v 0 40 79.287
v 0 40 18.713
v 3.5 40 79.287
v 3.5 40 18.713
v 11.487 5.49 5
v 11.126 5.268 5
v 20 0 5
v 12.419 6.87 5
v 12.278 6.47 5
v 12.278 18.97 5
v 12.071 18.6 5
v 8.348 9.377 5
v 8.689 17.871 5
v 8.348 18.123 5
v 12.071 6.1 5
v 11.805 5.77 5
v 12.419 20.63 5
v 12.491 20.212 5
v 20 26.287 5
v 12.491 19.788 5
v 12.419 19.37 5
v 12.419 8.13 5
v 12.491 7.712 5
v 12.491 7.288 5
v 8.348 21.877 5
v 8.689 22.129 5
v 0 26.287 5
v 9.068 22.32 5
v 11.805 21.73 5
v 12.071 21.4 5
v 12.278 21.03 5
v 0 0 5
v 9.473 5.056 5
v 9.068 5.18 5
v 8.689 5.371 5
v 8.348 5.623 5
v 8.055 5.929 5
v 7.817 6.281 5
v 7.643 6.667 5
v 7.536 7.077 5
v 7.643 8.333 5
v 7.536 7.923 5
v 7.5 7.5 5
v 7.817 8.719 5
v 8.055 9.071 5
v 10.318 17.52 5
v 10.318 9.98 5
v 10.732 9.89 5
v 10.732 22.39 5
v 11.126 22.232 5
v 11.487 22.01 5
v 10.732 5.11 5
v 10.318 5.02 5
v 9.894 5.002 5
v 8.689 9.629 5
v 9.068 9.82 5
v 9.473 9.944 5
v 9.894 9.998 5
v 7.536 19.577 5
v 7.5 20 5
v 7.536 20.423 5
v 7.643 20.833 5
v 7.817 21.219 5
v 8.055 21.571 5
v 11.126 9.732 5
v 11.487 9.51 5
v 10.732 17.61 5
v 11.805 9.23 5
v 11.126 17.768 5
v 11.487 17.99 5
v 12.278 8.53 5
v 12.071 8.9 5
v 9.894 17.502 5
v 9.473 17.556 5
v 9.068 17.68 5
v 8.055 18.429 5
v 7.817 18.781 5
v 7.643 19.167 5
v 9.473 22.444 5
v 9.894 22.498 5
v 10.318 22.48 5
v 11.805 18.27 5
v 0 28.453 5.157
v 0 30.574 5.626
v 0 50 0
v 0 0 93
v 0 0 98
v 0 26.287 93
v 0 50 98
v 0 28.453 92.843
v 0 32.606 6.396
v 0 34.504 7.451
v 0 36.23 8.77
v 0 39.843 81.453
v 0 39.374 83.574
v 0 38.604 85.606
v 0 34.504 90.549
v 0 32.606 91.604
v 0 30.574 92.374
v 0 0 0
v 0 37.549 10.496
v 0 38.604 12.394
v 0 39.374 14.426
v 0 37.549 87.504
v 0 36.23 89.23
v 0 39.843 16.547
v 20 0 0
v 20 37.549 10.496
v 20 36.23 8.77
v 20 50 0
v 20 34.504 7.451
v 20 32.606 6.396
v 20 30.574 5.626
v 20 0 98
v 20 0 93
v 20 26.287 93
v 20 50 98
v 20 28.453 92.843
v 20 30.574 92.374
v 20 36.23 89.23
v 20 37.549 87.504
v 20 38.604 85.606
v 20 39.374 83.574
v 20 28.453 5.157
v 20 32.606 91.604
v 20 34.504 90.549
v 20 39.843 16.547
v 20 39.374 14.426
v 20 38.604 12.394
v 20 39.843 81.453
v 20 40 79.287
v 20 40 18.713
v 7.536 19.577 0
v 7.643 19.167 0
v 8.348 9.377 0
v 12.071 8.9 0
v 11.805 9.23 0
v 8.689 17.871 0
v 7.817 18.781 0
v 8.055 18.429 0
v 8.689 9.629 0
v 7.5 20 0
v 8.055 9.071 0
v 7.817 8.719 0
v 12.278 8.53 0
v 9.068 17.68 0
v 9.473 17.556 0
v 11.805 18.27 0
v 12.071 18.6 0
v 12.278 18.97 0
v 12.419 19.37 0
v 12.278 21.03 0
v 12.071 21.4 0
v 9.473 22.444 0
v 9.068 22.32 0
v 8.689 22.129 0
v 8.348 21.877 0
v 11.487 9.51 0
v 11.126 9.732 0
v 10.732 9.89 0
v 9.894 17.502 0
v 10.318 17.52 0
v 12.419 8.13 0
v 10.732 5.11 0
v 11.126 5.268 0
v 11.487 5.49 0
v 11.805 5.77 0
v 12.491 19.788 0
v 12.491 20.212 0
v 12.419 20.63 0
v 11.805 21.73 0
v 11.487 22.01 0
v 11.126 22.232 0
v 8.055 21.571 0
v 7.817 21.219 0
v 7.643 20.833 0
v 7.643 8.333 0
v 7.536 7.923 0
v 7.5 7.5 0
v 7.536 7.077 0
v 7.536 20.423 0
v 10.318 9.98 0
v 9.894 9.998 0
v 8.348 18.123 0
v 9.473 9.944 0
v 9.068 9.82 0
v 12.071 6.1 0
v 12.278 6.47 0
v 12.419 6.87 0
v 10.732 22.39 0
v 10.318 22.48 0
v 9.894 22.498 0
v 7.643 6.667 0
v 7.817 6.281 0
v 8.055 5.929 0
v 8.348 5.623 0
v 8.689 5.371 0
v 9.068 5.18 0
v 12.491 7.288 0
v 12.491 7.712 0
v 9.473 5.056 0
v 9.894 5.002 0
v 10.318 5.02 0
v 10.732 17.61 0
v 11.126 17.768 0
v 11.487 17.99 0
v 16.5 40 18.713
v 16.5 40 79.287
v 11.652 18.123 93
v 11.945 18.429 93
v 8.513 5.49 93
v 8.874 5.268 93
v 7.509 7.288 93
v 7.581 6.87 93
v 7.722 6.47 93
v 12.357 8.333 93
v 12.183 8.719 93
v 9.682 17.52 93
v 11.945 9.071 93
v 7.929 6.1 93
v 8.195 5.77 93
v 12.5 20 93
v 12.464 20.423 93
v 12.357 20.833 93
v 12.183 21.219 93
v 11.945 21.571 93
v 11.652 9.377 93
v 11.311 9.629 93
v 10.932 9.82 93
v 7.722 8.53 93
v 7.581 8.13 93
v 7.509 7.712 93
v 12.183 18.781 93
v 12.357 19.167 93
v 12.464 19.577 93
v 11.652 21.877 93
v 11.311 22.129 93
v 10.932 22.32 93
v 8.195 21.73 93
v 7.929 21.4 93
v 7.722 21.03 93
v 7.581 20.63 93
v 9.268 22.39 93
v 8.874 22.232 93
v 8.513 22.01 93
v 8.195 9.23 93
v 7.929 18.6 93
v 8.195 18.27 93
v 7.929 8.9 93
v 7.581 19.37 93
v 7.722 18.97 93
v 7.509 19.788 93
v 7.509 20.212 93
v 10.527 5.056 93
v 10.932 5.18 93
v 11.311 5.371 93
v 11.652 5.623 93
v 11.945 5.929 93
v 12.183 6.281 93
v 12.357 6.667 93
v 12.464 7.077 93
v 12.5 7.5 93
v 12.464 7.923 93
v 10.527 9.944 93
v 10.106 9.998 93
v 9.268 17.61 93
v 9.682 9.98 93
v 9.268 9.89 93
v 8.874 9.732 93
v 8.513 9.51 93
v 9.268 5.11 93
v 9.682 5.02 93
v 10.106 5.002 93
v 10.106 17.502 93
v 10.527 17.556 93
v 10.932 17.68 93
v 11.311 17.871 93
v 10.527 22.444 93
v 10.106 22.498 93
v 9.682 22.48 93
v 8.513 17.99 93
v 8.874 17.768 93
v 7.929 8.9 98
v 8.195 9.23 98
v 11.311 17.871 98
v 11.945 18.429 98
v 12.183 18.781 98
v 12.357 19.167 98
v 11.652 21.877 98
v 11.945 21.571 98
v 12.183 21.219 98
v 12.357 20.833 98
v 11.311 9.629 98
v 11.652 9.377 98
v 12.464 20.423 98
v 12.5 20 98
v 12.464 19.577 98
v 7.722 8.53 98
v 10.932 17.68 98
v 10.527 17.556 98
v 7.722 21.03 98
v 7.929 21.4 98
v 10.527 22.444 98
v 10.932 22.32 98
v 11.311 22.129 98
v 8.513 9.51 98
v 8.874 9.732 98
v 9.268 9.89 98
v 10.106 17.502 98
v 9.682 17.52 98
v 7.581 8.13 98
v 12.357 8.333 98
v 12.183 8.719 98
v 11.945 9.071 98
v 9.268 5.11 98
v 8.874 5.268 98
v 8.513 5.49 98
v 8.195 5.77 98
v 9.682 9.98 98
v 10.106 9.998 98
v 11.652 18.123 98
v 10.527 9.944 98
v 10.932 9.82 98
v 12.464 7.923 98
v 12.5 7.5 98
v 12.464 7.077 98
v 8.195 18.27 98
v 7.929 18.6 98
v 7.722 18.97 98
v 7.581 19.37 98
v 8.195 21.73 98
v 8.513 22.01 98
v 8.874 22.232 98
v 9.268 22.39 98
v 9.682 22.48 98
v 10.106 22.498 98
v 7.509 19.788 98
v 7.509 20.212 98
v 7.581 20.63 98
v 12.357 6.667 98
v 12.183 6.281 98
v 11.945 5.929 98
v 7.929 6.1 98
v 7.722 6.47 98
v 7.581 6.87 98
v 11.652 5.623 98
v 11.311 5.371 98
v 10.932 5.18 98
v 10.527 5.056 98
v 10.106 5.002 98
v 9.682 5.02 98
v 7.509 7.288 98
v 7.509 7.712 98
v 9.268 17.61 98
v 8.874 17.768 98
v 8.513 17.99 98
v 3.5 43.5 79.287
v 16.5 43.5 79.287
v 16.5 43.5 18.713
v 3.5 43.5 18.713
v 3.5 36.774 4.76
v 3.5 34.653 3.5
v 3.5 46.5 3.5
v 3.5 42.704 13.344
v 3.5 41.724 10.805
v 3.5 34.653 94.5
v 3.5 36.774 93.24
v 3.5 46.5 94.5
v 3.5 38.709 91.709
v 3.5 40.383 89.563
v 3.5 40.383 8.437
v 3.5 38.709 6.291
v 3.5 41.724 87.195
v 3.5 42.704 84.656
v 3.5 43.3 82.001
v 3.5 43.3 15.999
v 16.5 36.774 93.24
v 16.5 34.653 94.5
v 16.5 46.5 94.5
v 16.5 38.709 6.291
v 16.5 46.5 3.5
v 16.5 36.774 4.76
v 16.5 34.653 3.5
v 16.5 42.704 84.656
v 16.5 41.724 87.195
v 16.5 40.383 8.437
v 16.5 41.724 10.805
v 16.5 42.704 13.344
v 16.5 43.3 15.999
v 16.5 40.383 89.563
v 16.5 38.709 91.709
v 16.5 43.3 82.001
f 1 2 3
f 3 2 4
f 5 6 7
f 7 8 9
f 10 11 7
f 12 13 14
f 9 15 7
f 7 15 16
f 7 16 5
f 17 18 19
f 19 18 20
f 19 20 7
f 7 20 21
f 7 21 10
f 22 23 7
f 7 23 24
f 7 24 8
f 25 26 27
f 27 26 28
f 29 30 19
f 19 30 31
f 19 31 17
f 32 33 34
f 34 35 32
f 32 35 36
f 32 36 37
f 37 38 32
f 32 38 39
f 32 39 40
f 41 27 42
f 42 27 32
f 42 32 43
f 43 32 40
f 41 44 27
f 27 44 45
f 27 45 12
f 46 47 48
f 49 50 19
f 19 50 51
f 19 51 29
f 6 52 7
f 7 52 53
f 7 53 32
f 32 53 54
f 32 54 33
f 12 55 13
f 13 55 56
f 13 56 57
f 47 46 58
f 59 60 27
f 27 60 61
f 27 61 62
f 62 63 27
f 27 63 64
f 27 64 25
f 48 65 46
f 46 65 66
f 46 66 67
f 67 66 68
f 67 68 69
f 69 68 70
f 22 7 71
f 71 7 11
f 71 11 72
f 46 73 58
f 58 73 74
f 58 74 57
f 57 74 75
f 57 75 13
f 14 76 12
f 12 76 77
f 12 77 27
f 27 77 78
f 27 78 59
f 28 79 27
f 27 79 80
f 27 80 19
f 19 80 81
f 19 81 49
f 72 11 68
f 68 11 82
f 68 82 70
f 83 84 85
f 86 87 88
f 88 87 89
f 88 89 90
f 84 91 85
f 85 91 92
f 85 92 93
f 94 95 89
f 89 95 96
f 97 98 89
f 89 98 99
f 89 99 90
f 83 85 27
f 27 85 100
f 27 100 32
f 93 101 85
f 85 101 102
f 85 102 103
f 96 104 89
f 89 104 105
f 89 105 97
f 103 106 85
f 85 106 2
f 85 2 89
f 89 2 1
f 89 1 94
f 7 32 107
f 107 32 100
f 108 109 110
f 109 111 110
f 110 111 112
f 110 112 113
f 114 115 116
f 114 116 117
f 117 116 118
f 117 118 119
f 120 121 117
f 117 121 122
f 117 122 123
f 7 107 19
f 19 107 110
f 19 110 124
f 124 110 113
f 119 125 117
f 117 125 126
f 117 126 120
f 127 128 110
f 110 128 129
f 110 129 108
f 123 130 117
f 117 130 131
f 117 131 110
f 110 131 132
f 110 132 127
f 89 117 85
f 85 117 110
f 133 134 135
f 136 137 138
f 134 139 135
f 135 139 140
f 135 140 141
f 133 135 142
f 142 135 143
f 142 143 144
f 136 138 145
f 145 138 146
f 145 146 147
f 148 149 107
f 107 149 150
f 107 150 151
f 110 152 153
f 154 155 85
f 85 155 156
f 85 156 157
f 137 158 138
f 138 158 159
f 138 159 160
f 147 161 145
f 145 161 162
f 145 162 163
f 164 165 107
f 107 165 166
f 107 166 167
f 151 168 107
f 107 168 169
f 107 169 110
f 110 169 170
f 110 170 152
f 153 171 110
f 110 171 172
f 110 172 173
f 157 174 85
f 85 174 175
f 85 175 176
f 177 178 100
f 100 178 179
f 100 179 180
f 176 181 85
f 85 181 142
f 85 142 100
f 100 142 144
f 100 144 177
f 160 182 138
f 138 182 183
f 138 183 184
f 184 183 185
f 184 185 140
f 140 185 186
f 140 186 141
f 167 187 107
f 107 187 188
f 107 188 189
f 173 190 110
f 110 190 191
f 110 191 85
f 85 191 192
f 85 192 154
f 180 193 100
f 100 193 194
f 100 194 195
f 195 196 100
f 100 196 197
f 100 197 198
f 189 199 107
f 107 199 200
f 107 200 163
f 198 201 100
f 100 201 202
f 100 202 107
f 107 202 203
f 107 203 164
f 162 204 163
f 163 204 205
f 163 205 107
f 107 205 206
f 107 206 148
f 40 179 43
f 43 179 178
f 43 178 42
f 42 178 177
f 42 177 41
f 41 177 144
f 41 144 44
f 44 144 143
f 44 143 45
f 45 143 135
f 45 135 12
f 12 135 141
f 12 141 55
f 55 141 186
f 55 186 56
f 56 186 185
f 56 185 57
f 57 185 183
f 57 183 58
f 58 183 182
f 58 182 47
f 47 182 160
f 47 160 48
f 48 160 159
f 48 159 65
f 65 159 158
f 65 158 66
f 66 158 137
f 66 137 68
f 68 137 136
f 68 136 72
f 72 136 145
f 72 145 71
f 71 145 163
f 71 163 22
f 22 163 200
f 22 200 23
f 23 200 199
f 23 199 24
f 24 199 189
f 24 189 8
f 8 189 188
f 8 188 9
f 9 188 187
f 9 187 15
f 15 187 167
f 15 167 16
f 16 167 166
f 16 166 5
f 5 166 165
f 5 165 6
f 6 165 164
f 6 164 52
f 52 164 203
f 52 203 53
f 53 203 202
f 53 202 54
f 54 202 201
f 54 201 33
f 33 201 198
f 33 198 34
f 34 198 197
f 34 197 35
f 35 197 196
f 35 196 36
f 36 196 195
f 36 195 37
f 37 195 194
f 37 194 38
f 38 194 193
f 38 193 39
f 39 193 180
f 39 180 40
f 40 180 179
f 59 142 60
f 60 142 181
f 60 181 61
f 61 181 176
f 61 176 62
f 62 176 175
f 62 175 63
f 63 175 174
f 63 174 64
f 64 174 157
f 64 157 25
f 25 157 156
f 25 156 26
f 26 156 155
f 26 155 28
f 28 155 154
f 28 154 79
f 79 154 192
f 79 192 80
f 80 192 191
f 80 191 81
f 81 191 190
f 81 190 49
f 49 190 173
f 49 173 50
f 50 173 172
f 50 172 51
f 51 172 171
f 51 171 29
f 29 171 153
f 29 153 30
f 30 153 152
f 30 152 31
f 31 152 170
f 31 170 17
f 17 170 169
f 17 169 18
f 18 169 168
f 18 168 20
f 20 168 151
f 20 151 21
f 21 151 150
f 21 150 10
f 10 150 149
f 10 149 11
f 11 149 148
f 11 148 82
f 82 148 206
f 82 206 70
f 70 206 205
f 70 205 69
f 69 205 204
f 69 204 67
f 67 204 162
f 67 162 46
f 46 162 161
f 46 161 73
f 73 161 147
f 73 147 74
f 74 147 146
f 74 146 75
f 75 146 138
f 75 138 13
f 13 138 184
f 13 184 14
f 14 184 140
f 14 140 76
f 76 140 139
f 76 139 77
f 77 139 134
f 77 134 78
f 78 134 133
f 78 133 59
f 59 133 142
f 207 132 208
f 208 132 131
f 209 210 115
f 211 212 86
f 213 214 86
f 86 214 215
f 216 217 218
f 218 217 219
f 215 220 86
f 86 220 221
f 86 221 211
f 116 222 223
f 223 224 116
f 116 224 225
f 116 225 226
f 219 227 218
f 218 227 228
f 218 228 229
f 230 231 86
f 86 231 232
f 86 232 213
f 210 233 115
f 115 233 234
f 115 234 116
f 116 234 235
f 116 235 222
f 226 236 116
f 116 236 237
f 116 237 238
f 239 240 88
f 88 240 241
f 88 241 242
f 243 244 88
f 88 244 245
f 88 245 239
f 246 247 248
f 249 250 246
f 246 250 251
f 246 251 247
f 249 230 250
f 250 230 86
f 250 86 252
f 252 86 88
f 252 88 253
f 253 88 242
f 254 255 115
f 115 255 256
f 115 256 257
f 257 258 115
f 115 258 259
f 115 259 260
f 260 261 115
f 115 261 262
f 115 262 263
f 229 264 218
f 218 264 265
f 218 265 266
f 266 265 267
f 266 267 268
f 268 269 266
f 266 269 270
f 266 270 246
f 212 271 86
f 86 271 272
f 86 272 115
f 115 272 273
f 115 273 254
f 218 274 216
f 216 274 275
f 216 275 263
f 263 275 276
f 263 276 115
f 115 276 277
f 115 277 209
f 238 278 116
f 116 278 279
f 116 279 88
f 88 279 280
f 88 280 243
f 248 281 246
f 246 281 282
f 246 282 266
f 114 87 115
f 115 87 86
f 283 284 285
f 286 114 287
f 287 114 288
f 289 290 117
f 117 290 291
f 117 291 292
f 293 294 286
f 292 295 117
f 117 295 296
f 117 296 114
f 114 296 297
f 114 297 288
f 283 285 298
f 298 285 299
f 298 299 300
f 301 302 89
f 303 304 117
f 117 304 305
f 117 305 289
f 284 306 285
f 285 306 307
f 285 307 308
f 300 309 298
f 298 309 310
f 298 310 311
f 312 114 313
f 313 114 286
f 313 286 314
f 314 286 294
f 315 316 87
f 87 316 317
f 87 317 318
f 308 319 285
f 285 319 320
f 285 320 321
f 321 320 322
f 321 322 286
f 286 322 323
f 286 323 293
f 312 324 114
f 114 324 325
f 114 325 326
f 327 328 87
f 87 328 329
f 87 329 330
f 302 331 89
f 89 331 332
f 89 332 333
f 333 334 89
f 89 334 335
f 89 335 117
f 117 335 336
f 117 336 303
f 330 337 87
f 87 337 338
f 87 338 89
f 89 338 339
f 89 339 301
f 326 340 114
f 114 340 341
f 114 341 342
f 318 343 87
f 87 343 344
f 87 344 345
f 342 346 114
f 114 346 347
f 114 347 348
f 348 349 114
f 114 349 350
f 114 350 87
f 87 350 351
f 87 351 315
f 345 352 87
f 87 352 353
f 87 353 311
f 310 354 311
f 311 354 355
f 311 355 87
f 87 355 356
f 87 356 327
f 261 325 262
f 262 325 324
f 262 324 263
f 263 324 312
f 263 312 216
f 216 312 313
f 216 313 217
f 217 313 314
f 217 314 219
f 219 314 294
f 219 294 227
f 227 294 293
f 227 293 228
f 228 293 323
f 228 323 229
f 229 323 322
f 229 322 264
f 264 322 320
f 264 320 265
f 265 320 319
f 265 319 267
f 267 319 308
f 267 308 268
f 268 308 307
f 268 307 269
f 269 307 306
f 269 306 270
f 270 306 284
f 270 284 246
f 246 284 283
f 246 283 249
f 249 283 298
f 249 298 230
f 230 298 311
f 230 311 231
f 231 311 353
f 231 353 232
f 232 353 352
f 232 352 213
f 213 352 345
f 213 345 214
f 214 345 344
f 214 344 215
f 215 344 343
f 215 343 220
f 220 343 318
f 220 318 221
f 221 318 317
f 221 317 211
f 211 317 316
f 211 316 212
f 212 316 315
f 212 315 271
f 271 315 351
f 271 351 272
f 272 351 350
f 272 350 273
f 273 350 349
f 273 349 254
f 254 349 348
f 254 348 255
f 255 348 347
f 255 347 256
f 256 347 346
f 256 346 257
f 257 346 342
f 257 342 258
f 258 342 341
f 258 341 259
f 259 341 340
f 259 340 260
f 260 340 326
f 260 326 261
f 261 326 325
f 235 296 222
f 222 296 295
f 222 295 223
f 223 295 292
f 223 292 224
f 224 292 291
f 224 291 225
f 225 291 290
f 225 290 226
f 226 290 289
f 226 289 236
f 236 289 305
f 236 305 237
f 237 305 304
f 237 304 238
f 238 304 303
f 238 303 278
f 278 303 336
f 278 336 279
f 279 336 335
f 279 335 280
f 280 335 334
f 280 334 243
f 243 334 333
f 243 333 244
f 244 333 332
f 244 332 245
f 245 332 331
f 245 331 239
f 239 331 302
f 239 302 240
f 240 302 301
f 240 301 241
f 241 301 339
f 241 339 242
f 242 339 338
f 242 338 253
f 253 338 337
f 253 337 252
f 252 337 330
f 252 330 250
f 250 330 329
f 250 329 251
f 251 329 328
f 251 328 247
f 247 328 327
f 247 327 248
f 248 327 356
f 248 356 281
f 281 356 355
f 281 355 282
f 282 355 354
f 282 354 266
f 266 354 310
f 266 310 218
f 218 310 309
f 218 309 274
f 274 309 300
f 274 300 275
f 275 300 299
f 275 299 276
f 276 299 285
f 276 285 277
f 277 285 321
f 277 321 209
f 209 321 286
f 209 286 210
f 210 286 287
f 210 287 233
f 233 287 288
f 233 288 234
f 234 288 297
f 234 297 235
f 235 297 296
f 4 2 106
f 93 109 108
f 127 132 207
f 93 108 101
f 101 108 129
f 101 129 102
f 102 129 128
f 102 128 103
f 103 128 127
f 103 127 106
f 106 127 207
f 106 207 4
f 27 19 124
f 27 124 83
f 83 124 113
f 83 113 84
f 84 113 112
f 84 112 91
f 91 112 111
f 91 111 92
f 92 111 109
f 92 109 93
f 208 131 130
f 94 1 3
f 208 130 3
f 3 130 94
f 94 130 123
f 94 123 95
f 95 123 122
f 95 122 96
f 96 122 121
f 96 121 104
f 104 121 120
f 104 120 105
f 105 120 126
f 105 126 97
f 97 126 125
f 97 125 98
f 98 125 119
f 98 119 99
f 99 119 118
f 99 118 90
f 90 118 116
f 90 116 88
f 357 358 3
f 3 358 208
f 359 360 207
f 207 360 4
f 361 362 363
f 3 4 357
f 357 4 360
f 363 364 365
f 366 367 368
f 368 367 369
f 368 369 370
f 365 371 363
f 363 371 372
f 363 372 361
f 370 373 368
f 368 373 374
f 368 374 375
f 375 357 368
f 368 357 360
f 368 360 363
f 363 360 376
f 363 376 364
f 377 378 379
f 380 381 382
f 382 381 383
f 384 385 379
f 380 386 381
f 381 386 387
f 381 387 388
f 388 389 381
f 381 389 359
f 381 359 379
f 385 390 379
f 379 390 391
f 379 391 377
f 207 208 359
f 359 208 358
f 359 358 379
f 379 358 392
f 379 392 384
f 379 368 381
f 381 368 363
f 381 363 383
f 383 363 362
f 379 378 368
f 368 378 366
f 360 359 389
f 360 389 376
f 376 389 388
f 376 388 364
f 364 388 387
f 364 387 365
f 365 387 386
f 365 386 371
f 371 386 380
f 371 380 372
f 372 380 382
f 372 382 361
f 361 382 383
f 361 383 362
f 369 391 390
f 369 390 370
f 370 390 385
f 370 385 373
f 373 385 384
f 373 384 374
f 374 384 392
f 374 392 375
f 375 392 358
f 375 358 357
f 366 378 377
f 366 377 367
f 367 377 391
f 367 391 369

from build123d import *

# Parameters (mm, degrees)
SKETCH1_W           = 20
SKETCH1_H           = 50
BOSS_EXTRUDE1_DEPTH = 5
SKETCH3_R           = 2.5
CUT_EXTRUDE5_DEPTH  = 5
SKETCH4_W           = 20
SKETCH4_H           = 10
BOSS_EXTRUDE2_DEPTH = 88
SKETCH5_W           = 20
SKETCH5_H           = 50
BOSS_EXTRUDE3_DEPTH = 5
CUT_EXTRUDE6_START  = -5
SKETCH6_R           = 2.5
CUT_EXTRUDE6_DEPTH  = 5
BOSS_EXTRUDE4_DEPTH = 20
FILLET1_R           = 15
SHELL2_START        = 3.5
SHELL2_DEPTH        = 13


# Read off the part's stored shape, not the designer's step: Shell2
with BuildPart() as part:
    # Sketch1 → Boss-Extrude1 (new body)
    with BuildSketch(Plane.XY):
        with Locations((10, 25)):
            Rectangle(SKETCH1_W, SKETCH1_H)
    extrude(amount=BOSS_EXTRUDE1_DEPTH)

    # Sketch3 → Cut-Extrude5 (cut)
    with BuildSketch(Plane(origin=(0, 0, 0), x_dir=(-1, 0, 0), z_dir=(0, 0, -1))):
        with Locations((-10, 7.5)):
            Circle(SKETCH3_R)
        with Locations((-10, 20)):
            Circle(SKETCH3_R)
    extrude(amount=-CUT_EXTRUDE5_DEPTH, mode=Mode.SUBTRACT)

    # Sketch4 → Boss-Extrude2 (add)
    with BuildSketch(Plane.XY.offset(5)):
        with Locations((10, 45)):
            Rectangle(SKETCH4_W, SKETCH4_H)
    extrude(amount=BOSS_EXTRUDE2_DEPTH)

    # Sketch5 → Boss-Extrude3 (add)
    with BuildSketch(Plane.XY.offset(93)):
        with Locations((10, 25)):
            Rectangle(SKETCH5_W, SKETCH5_H)
    extrude(amount=BOSS_EXTRUDE3_DEPTH)

    # Sketch6 → Cut-Extrude6 (cut)
    with BuildSketch(Plane.XY.offset(98).offset(CUT_EXTRUDE6_START)):
        with Locations(Location((10, 7.5, 0), (0, 0, 180))):
            Circle(SKETCH6_R)
        with Locations(Location((10, 20, 0), (0, 0, 180))):
            Circle(SKETCH6_R)
    extrude(amount=CUT_EXTRUDE6_DEPTH, mode=Mode.SUBTRACT)

    # Sketch7 → Boss-Extrude4 (add)
    with BuildSketch(Plane(origin=(20, 0, 0), x_dir=(0, 0, -1), z_dir=(1, 0, 0))):
        Polygon((-93, 40), (-85.5, 40), (-93, 32.5), align=None)
        Polygon((-12.5, 40), (-5, 40), (-5, 32.5), align=None)
    extrude(amount=-BOSS_EXTRUDE4_DEPTH)

    # Fillet1
    # the kernel refuses this fillet: 15 mm, written as the material it adds along each edge
    with BuildSketch(Plane(origin=(20, 32.5, 5), x_dir=(0, -1, 0), z_dir=(-1, 0, 0)), Plane(origin=(20, 40, 85.5), x_dir=(0, 0, -1), z_dir=(-1, 0, 0))) as fillet1_piece_1:
        with BuildLine():
            CenterArc((FILLET1_R * 0.414213562373, FILLET1_R), FILLET1_R, 225, 45)
            Line((-FILLET1_R * 0.292893218813, FILLET1_R * 0.292893218813), (0, 0))
            Line((0, 0), (FILLET1_R * 0.414213562373, 0))
        make_face()
    extrude(amount=20)
    with BuildSketch(Plane(origin=(20, 40, 12.5), x_dir=(0, 0, 1), z_dir=(-1, 0, 0)), Plane(origin=(20, 32.5, 93), x_dir=(0, -1, 0), z_dir=(-1, 0, 0))) as fillet1_piece_2:
        with BuildLine():
            CenterArc((FILLET1_R * 0.414213562373, -FILLET1_R), FILLET1_R, 90, 45)
            Line((-FILLET1_R * 0.292893218813, -FILLET1_R * 0.292893218813), (0, 0))
            Line((0, 0), (FILLET1_R * 0.414213562373, 0))
        make_face()
    extrude(amount=20)

    # Shell2 outline → Shell2 (cut)
    with BuildSketch(Plane.YZ.offset(SHELL2_START)):
        with BuildLine():
            ThreePointArc((38.709041728, 91.709041728), (42.260754212, 85.943850268), (43.5, 79.286796564))
            Line((43.5, 79.286796564), (40, 79.286796564))
            Line((40, 79.286796564), (40, 18.713203436))
            Line((40, 18.713203436), (43.5, 18.713203436))
            ThreePointArc((43.5, 18.713203436), (42.260754212, 12.056149732), (38.709041728, 6.290958272))
            ThreePointArc((38.709041728, 6.290958272), (36.774474362, 4.759966719), (34.65339683, 3.5))
            Line((34.65339683, 3.5), (46.5, 3.5))
            Line((46.5, 3.5), (46.5, 94.5))
            Line((46.5, 94.5), (34.65339683, 94.5))
            ThreePointArc((34.65339683, 94.5), (36.774474362, 93.240033281), (38.709041728, 91.709041728))
        make_face()
    extrude(amount=SHELL2_DEPTH, mode=Mode.SUBTRACT)


solid = part.part
